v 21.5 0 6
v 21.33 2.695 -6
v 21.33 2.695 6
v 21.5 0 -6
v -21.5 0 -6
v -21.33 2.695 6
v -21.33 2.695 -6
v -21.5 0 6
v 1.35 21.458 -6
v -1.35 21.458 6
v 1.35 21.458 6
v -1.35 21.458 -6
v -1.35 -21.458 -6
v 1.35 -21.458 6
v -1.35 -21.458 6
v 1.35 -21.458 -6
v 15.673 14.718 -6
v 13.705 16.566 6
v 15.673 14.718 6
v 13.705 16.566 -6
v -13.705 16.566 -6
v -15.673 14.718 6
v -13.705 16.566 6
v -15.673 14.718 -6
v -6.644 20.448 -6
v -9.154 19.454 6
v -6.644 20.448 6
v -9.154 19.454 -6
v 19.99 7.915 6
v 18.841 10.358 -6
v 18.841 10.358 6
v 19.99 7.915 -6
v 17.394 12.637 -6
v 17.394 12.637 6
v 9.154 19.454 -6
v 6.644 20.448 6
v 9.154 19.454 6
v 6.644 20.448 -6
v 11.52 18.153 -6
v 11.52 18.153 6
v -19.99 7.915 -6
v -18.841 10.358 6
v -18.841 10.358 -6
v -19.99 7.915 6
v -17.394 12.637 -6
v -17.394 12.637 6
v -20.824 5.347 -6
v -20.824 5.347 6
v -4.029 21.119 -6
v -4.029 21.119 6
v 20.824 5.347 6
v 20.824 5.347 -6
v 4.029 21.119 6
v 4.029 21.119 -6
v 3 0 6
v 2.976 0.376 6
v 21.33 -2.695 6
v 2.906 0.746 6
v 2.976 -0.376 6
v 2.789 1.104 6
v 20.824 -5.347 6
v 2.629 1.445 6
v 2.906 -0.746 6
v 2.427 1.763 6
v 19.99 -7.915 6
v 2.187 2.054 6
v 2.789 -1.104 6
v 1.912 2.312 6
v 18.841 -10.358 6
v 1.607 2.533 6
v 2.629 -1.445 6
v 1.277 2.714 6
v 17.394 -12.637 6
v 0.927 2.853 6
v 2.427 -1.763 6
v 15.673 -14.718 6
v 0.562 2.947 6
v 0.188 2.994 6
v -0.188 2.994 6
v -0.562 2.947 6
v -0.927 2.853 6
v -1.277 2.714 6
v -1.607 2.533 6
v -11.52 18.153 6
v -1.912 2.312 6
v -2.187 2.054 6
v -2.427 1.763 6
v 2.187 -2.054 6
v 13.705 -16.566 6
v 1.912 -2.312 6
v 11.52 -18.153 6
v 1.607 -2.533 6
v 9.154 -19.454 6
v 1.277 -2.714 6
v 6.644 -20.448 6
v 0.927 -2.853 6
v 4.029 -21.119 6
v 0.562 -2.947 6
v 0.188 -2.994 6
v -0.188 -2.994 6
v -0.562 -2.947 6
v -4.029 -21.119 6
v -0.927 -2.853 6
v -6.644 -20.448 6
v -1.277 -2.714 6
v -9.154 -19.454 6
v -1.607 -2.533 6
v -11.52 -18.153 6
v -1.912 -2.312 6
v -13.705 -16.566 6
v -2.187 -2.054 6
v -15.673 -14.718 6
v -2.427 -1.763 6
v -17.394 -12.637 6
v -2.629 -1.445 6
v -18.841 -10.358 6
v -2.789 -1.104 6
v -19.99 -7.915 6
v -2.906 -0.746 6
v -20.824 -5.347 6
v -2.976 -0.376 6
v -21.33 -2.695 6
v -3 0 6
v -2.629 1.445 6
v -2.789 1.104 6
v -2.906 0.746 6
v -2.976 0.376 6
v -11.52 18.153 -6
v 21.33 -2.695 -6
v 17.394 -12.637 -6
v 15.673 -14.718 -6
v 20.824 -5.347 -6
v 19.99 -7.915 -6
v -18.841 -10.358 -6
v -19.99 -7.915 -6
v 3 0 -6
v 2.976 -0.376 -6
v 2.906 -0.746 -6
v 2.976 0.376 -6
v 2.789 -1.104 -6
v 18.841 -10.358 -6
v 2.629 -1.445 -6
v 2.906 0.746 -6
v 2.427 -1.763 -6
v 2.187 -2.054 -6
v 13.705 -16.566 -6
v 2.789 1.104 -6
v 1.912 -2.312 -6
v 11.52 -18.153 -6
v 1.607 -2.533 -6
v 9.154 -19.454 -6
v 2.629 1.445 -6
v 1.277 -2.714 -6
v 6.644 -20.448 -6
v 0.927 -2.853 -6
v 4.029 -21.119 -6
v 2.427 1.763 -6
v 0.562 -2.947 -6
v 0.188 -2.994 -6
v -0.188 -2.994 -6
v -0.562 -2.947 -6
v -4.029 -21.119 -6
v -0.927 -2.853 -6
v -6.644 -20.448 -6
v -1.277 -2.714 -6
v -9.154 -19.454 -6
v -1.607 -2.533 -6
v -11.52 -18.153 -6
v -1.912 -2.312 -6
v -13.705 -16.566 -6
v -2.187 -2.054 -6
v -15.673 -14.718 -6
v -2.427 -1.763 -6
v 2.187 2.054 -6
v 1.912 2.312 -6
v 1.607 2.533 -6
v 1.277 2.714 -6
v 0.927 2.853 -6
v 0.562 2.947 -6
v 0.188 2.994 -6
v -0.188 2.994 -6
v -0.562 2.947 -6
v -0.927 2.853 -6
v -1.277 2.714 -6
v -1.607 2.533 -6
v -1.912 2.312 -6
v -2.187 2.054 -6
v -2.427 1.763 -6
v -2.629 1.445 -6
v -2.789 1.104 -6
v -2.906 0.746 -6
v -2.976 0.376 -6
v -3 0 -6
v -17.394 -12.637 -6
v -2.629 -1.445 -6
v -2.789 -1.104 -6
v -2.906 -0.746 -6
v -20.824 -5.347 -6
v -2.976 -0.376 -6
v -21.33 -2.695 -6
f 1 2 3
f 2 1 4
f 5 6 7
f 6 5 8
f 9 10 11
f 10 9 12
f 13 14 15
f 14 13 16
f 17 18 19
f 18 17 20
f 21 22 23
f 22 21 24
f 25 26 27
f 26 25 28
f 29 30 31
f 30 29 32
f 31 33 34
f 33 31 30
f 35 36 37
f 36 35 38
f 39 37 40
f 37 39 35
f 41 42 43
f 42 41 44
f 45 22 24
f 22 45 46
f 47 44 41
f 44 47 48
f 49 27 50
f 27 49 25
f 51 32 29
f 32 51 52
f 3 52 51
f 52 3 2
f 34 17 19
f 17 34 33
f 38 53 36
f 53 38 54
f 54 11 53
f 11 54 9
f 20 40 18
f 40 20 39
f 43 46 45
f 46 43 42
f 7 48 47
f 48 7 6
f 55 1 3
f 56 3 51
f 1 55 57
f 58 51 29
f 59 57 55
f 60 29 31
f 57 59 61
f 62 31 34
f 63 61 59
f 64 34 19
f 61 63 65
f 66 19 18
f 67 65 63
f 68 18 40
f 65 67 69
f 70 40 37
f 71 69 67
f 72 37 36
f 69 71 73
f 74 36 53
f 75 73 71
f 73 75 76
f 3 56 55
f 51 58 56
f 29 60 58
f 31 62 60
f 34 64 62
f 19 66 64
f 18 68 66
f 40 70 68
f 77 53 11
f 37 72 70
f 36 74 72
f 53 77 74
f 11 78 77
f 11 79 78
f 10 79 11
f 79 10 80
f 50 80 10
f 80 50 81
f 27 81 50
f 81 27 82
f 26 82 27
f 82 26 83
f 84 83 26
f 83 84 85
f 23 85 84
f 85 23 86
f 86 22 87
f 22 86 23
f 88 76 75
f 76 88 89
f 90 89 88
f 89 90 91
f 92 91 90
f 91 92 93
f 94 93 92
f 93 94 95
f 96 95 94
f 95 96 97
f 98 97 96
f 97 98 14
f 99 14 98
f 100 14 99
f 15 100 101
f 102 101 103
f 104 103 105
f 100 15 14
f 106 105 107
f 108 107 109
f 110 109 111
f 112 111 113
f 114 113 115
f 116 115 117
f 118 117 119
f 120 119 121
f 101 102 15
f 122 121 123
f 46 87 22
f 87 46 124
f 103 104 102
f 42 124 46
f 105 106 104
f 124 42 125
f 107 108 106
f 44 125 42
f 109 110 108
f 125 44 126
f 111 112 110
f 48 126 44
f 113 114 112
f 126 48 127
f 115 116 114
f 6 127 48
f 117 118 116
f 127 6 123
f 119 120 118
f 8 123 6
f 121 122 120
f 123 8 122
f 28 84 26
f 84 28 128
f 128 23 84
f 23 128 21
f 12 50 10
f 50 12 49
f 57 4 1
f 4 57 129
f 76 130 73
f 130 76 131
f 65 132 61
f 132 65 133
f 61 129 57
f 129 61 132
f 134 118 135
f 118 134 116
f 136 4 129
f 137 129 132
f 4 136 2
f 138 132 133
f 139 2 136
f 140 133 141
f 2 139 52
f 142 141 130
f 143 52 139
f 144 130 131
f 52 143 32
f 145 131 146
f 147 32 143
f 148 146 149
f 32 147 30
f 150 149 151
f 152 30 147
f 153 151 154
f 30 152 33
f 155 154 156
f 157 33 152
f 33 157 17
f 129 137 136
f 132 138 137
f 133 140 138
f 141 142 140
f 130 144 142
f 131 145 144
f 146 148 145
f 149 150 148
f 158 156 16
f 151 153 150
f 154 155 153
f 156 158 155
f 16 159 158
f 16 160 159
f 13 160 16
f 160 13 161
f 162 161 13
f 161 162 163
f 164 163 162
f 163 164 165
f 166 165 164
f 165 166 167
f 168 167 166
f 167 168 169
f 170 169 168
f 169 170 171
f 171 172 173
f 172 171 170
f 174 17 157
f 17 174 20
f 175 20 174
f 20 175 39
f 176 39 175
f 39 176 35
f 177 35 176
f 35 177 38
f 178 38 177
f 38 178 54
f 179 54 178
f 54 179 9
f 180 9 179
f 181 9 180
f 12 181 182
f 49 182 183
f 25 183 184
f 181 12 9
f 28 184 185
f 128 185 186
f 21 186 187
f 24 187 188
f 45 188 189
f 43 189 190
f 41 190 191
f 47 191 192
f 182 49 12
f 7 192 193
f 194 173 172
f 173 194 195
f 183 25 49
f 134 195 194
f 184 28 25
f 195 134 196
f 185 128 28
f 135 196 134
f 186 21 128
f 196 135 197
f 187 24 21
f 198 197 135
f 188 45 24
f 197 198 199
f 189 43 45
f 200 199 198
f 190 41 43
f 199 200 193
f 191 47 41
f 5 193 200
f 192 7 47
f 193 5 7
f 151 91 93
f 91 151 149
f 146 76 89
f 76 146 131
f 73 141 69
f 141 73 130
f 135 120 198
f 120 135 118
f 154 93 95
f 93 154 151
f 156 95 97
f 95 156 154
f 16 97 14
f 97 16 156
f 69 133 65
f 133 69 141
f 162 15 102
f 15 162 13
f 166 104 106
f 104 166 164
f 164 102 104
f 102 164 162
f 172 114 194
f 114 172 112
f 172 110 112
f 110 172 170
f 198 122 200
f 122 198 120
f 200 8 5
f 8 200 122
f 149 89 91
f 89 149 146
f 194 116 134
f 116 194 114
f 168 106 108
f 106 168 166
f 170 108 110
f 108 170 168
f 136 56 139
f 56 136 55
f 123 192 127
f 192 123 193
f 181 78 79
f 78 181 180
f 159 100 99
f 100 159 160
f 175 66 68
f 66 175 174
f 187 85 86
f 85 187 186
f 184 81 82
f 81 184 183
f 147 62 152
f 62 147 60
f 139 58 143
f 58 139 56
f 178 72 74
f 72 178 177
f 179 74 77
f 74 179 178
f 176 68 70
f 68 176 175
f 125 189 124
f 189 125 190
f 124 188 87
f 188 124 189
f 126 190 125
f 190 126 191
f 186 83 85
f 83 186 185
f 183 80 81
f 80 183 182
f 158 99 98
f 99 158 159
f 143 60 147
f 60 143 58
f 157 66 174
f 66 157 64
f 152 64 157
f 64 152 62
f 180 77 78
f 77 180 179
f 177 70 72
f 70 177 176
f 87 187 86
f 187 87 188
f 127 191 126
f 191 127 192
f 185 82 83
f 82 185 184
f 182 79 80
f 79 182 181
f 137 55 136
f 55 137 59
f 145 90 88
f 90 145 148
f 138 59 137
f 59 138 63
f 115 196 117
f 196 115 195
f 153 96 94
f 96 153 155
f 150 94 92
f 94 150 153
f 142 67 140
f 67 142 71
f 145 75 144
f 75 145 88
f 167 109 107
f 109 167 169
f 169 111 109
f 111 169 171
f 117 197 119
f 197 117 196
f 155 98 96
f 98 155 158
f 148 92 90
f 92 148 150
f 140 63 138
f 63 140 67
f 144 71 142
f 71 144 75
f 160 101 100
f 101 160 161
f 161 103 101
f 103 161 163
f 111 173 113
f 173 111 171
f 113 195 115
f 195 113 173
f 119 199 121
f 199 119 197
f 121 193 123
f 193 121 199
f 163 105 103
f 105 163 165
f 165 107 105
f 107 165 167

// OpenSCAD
$fn = 50;


difference() {
	union() {
		translate(v = [0, 0, -6.0000000000]) {
			cylinder(h = 12, r = 21.5000000000);
		}
	}
	union() {
		translate(v = [0, 0, -100.0000000000]) {
			cylinder(h = 200, r = 3);
		}
	}
}
